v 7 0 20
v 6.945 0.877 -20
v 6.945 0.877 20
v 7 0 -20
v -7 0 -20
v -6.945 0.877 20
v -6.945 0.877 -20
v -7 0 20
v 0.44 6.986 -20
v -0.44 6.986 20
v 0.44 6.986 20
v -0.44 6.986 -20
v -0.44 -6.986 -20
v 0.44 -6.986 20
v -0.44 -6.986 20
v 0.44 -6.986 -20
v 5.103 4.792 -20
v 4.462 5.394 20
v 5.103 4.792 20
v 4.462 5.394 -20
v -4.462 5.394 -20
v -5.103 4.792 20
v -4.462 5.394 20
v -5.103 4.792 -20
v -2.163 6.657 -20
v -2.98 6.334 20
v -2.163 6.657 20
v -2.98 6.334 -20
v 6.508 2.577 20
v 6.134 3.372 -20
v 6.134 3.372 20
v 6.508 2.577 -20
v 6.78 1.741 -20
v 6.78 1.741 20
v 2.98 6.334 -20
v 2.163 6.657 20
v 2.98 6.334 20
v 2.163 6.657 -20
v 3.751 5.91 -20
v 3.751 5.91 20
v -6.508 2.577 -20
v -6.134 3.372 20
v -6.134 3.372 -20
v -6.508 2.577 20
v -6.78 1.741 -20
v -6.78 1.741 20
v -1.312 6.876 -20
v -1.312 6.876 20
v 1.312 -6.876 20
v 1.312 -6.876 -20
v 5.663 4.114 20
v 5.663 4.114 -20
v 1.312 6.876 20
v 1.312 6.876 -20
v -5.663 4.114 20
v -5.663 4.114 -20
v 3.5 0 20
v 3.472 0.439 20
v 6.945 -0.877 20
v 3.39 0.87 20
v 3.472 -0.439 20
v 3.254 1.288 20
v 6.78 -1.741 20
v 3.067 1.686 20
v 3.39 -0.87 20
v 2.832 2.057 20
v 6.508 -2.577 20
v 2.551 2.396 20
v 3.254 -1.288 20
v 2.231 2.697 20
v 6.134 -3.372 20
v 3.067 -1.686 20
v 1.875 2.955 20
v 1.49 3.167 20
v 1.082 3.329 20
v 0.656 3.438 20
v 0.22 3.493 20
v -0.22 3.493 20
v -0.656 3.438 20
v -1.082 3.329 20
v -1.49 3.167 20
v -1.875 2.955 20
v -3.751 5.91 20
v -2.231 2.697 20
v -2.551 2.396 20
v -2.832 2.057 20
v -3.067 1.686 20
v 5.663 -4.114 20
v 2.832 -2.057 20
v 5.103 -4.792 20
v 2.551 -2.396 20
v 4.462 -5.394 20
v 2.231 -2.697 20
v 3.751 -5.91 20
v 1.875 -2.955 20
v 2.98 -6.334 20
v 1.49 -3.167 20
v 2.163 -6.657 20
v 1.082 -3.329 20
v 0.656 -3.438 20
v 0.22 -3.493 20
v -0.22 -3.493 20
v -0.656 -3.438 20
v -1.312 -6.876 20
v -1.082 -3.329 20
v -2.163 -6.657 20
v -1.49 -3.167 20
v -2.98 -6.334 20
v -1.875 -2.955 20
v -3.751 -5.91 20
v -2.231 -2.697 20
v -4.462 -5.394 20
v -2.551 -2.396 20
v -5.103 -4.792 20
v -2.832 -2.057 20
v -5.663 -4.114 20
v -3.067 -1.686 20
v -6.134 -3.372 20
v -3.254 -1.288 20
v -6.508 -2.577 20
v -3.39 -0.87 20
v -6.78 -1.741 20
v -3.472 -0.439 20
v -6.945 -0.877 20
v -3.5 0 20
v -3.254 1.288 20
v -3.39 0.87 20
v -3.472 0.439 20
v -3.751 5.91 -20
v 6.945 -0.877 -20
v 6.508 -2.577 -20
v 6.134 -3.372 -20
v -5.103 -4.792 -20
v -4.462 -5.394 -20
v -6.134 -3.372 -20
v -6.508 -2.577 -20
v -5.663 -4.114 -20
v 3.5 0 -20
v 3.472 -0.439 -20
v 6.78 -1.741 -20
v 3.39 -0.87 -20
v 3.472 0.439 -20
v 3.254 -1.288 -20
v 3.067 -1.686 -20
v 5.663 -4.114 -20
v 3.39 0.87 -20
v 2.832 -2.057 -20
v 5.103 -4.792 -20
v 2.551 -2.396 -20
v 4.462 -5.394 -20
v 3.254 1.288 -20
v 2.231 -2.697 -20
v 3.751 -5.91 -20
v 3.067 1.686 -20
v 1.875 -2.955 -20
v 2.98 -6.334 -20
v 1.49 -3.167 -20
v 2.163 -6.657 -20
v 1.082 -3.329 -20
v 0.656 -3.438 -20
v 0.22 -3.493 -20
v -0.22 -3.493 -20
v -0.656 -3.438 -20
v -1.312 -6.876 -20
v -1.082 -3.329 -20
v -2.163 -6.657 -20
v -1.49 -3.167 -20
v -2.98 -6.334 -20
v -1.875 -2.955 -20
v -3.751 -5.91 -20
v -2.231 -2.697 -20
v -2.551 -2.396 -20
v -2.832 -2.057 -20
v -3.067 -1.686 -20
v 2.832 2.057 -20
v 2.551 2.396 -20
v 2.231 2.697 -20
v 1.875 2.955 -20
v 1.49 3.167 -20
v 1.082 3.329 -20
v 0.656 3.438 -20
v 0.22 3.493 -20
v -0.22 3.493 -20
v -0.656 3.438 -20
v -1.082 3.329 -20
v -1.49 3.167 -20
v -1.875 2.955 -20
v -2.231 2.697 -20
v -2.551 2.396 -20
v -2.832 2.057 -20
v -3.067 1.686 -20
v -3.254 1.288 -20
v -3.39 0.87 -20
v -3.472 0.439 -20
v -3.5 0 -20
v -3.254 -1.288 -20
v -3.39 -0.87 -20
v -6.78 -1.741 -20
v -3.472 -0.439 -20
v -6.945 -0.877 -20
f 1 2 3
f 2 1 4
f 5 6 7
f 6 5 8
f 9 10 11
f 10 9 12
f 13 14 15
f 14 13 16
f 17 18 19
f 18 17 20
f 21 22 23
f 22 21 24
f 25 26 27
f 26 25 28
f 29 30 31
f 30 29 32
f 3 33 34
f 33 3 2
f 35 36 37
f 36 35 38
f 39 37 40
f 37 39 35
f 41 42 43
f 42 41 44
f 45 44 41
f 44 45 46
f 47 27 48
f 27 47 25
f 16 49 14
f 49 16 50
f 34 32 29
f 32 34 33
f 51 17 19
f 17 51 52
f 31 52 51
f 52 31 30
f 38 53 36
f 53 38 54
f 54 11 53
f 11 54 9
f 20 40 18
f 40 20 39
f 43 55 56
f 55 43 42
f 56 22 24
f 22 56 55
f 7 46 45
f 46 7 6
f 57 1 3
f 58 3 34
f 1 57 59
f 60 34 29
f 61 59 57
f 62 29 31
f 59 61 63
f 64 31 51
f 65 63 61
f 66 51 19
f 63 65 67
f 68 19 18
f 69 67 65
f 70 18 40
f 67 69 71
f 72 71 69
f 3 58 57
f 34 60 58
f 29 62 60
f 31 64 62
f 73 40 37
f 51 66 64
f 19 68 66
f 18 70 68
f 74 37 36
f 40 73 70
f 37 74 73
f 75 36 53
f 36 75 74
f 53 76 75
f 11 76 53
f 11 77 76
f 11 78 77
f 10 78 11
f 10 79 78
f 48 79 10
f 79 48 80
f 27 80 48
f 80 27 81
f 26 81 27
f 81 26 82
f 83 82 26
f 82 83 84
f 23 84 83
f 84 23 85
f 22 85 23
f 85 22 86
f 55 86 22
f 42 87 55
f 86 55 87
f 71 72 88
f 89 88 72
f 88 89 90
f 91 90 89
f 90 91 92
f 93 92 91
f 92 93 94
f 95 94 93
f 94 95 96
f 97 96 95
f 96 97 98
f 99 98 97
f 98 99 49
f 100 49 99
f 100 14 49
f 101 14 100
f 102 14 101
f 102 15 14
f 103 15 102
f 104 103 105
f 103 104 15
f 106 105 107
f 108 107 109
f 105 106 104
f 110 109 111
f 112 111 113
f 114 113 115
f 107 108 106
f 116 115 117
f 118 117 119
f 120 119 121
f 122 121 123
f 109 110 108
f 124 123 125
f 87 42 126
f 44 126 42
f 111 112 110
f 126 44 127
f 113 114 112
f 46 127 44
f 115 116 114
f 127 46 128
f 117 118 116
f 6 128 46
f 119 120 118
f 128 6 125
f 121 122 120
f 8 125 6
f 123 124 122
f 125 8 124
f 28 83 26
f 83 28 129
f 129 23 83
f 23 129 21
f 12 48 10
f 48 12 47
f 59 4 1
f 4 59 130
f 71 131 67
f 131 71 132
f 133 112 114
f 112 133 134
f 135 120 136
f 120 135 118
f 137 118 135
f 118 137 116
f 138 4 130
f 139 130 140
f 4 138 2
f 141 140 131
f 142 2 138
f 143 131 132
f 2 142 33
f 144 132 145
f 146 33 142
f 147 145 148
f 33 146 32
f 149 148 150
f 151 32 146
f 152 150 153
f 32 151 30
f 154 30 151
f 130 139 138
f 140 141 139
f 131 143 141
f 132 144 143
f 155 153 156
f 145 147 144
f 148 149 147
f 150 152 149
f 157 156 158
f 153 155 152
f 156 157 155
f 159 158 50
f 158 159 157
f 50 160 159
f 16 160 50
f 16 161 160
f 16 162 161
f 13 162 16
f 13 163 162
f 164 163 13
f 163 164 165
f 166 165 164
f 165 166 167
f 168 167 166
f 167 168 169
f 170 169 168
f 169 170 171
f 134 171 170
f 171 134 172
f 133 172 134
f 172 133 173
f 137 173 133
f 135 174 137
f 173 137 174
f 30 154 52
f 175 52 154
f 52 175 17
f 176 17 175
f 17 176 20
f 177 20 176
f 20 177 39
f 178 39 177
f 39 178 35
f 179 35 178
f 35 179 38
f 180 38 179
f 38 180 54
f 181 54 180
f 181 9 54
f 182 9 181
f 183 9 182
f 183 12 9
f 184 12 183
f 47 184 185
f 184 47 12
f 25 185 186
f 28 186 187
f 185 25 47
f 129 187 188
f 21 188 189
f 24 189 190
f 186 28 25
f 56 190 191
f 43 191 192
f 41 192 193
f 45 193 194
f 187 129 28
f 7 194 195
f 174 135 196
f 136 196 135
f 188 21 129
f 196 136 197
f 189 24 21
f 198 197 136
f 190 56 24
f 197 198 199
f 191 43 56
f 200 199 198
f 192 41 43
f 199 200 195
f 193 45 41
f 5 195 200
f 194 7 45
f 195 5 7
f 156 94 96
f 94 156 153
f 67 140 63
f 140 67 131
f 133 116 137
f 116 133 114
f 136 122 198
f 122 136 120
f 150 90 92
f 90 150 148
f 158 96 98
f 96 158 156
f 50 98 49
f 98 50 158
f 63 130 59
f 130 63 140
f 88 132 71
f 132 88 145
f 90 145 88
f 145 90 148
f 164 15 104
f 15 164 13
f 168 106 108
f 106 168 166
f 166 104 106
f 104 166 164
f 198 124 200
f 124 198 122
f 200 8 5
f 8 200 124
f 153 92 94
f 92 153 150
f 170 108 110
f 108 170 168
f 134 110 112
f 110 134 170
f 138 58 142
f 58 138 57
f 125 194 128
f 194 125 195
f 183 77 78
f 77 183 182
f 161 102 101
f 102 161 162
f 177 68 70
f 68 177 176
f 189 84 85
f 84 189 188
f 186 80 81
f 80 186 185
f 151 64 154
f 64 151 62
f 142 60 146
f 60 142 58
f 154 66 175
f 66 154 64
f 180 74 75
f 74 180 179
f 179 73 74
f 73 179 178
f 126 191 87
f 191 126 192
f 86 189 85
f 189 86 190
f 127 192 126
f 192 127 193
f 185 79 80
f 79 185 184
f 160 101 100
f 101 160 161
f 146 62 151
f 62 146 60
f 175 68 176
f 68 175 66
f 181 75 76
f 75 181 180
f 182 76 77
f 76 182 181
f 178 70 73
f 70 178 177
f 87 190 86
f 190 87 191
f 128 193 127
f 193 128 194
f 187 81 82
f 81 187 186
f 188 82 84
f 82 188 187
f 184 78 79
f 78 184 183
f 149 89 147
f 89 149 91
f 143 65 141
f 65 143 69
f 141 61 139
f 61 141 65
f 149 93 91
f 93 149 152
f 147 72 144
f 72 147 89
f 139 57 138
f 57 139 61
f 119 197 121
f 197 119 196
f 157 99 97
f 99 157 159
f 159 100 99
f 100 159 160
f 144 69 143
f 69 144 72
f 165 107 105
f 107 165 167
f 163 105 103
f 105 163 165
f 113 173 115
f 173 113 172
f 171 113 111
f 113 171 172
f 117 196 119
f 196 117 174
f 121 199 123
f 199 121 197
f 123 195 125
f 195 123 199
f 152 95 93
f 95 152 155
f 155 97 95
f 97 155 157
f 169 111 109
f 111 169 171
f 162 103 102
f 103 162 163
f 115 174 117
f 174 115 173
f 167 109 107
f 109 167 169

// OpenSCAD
$fn = 50;


difference() {
	union() {
		translate(v = [0, 0, -20.0000000000]) {
			cylinder(h = 40, r = 7.0000000000);
		}
	}
	union() {
		translate(v = [0, 0, -100.0000000000]) {
			cylinder(h = 200, r = 3.5000000000);
		}
	}
}
